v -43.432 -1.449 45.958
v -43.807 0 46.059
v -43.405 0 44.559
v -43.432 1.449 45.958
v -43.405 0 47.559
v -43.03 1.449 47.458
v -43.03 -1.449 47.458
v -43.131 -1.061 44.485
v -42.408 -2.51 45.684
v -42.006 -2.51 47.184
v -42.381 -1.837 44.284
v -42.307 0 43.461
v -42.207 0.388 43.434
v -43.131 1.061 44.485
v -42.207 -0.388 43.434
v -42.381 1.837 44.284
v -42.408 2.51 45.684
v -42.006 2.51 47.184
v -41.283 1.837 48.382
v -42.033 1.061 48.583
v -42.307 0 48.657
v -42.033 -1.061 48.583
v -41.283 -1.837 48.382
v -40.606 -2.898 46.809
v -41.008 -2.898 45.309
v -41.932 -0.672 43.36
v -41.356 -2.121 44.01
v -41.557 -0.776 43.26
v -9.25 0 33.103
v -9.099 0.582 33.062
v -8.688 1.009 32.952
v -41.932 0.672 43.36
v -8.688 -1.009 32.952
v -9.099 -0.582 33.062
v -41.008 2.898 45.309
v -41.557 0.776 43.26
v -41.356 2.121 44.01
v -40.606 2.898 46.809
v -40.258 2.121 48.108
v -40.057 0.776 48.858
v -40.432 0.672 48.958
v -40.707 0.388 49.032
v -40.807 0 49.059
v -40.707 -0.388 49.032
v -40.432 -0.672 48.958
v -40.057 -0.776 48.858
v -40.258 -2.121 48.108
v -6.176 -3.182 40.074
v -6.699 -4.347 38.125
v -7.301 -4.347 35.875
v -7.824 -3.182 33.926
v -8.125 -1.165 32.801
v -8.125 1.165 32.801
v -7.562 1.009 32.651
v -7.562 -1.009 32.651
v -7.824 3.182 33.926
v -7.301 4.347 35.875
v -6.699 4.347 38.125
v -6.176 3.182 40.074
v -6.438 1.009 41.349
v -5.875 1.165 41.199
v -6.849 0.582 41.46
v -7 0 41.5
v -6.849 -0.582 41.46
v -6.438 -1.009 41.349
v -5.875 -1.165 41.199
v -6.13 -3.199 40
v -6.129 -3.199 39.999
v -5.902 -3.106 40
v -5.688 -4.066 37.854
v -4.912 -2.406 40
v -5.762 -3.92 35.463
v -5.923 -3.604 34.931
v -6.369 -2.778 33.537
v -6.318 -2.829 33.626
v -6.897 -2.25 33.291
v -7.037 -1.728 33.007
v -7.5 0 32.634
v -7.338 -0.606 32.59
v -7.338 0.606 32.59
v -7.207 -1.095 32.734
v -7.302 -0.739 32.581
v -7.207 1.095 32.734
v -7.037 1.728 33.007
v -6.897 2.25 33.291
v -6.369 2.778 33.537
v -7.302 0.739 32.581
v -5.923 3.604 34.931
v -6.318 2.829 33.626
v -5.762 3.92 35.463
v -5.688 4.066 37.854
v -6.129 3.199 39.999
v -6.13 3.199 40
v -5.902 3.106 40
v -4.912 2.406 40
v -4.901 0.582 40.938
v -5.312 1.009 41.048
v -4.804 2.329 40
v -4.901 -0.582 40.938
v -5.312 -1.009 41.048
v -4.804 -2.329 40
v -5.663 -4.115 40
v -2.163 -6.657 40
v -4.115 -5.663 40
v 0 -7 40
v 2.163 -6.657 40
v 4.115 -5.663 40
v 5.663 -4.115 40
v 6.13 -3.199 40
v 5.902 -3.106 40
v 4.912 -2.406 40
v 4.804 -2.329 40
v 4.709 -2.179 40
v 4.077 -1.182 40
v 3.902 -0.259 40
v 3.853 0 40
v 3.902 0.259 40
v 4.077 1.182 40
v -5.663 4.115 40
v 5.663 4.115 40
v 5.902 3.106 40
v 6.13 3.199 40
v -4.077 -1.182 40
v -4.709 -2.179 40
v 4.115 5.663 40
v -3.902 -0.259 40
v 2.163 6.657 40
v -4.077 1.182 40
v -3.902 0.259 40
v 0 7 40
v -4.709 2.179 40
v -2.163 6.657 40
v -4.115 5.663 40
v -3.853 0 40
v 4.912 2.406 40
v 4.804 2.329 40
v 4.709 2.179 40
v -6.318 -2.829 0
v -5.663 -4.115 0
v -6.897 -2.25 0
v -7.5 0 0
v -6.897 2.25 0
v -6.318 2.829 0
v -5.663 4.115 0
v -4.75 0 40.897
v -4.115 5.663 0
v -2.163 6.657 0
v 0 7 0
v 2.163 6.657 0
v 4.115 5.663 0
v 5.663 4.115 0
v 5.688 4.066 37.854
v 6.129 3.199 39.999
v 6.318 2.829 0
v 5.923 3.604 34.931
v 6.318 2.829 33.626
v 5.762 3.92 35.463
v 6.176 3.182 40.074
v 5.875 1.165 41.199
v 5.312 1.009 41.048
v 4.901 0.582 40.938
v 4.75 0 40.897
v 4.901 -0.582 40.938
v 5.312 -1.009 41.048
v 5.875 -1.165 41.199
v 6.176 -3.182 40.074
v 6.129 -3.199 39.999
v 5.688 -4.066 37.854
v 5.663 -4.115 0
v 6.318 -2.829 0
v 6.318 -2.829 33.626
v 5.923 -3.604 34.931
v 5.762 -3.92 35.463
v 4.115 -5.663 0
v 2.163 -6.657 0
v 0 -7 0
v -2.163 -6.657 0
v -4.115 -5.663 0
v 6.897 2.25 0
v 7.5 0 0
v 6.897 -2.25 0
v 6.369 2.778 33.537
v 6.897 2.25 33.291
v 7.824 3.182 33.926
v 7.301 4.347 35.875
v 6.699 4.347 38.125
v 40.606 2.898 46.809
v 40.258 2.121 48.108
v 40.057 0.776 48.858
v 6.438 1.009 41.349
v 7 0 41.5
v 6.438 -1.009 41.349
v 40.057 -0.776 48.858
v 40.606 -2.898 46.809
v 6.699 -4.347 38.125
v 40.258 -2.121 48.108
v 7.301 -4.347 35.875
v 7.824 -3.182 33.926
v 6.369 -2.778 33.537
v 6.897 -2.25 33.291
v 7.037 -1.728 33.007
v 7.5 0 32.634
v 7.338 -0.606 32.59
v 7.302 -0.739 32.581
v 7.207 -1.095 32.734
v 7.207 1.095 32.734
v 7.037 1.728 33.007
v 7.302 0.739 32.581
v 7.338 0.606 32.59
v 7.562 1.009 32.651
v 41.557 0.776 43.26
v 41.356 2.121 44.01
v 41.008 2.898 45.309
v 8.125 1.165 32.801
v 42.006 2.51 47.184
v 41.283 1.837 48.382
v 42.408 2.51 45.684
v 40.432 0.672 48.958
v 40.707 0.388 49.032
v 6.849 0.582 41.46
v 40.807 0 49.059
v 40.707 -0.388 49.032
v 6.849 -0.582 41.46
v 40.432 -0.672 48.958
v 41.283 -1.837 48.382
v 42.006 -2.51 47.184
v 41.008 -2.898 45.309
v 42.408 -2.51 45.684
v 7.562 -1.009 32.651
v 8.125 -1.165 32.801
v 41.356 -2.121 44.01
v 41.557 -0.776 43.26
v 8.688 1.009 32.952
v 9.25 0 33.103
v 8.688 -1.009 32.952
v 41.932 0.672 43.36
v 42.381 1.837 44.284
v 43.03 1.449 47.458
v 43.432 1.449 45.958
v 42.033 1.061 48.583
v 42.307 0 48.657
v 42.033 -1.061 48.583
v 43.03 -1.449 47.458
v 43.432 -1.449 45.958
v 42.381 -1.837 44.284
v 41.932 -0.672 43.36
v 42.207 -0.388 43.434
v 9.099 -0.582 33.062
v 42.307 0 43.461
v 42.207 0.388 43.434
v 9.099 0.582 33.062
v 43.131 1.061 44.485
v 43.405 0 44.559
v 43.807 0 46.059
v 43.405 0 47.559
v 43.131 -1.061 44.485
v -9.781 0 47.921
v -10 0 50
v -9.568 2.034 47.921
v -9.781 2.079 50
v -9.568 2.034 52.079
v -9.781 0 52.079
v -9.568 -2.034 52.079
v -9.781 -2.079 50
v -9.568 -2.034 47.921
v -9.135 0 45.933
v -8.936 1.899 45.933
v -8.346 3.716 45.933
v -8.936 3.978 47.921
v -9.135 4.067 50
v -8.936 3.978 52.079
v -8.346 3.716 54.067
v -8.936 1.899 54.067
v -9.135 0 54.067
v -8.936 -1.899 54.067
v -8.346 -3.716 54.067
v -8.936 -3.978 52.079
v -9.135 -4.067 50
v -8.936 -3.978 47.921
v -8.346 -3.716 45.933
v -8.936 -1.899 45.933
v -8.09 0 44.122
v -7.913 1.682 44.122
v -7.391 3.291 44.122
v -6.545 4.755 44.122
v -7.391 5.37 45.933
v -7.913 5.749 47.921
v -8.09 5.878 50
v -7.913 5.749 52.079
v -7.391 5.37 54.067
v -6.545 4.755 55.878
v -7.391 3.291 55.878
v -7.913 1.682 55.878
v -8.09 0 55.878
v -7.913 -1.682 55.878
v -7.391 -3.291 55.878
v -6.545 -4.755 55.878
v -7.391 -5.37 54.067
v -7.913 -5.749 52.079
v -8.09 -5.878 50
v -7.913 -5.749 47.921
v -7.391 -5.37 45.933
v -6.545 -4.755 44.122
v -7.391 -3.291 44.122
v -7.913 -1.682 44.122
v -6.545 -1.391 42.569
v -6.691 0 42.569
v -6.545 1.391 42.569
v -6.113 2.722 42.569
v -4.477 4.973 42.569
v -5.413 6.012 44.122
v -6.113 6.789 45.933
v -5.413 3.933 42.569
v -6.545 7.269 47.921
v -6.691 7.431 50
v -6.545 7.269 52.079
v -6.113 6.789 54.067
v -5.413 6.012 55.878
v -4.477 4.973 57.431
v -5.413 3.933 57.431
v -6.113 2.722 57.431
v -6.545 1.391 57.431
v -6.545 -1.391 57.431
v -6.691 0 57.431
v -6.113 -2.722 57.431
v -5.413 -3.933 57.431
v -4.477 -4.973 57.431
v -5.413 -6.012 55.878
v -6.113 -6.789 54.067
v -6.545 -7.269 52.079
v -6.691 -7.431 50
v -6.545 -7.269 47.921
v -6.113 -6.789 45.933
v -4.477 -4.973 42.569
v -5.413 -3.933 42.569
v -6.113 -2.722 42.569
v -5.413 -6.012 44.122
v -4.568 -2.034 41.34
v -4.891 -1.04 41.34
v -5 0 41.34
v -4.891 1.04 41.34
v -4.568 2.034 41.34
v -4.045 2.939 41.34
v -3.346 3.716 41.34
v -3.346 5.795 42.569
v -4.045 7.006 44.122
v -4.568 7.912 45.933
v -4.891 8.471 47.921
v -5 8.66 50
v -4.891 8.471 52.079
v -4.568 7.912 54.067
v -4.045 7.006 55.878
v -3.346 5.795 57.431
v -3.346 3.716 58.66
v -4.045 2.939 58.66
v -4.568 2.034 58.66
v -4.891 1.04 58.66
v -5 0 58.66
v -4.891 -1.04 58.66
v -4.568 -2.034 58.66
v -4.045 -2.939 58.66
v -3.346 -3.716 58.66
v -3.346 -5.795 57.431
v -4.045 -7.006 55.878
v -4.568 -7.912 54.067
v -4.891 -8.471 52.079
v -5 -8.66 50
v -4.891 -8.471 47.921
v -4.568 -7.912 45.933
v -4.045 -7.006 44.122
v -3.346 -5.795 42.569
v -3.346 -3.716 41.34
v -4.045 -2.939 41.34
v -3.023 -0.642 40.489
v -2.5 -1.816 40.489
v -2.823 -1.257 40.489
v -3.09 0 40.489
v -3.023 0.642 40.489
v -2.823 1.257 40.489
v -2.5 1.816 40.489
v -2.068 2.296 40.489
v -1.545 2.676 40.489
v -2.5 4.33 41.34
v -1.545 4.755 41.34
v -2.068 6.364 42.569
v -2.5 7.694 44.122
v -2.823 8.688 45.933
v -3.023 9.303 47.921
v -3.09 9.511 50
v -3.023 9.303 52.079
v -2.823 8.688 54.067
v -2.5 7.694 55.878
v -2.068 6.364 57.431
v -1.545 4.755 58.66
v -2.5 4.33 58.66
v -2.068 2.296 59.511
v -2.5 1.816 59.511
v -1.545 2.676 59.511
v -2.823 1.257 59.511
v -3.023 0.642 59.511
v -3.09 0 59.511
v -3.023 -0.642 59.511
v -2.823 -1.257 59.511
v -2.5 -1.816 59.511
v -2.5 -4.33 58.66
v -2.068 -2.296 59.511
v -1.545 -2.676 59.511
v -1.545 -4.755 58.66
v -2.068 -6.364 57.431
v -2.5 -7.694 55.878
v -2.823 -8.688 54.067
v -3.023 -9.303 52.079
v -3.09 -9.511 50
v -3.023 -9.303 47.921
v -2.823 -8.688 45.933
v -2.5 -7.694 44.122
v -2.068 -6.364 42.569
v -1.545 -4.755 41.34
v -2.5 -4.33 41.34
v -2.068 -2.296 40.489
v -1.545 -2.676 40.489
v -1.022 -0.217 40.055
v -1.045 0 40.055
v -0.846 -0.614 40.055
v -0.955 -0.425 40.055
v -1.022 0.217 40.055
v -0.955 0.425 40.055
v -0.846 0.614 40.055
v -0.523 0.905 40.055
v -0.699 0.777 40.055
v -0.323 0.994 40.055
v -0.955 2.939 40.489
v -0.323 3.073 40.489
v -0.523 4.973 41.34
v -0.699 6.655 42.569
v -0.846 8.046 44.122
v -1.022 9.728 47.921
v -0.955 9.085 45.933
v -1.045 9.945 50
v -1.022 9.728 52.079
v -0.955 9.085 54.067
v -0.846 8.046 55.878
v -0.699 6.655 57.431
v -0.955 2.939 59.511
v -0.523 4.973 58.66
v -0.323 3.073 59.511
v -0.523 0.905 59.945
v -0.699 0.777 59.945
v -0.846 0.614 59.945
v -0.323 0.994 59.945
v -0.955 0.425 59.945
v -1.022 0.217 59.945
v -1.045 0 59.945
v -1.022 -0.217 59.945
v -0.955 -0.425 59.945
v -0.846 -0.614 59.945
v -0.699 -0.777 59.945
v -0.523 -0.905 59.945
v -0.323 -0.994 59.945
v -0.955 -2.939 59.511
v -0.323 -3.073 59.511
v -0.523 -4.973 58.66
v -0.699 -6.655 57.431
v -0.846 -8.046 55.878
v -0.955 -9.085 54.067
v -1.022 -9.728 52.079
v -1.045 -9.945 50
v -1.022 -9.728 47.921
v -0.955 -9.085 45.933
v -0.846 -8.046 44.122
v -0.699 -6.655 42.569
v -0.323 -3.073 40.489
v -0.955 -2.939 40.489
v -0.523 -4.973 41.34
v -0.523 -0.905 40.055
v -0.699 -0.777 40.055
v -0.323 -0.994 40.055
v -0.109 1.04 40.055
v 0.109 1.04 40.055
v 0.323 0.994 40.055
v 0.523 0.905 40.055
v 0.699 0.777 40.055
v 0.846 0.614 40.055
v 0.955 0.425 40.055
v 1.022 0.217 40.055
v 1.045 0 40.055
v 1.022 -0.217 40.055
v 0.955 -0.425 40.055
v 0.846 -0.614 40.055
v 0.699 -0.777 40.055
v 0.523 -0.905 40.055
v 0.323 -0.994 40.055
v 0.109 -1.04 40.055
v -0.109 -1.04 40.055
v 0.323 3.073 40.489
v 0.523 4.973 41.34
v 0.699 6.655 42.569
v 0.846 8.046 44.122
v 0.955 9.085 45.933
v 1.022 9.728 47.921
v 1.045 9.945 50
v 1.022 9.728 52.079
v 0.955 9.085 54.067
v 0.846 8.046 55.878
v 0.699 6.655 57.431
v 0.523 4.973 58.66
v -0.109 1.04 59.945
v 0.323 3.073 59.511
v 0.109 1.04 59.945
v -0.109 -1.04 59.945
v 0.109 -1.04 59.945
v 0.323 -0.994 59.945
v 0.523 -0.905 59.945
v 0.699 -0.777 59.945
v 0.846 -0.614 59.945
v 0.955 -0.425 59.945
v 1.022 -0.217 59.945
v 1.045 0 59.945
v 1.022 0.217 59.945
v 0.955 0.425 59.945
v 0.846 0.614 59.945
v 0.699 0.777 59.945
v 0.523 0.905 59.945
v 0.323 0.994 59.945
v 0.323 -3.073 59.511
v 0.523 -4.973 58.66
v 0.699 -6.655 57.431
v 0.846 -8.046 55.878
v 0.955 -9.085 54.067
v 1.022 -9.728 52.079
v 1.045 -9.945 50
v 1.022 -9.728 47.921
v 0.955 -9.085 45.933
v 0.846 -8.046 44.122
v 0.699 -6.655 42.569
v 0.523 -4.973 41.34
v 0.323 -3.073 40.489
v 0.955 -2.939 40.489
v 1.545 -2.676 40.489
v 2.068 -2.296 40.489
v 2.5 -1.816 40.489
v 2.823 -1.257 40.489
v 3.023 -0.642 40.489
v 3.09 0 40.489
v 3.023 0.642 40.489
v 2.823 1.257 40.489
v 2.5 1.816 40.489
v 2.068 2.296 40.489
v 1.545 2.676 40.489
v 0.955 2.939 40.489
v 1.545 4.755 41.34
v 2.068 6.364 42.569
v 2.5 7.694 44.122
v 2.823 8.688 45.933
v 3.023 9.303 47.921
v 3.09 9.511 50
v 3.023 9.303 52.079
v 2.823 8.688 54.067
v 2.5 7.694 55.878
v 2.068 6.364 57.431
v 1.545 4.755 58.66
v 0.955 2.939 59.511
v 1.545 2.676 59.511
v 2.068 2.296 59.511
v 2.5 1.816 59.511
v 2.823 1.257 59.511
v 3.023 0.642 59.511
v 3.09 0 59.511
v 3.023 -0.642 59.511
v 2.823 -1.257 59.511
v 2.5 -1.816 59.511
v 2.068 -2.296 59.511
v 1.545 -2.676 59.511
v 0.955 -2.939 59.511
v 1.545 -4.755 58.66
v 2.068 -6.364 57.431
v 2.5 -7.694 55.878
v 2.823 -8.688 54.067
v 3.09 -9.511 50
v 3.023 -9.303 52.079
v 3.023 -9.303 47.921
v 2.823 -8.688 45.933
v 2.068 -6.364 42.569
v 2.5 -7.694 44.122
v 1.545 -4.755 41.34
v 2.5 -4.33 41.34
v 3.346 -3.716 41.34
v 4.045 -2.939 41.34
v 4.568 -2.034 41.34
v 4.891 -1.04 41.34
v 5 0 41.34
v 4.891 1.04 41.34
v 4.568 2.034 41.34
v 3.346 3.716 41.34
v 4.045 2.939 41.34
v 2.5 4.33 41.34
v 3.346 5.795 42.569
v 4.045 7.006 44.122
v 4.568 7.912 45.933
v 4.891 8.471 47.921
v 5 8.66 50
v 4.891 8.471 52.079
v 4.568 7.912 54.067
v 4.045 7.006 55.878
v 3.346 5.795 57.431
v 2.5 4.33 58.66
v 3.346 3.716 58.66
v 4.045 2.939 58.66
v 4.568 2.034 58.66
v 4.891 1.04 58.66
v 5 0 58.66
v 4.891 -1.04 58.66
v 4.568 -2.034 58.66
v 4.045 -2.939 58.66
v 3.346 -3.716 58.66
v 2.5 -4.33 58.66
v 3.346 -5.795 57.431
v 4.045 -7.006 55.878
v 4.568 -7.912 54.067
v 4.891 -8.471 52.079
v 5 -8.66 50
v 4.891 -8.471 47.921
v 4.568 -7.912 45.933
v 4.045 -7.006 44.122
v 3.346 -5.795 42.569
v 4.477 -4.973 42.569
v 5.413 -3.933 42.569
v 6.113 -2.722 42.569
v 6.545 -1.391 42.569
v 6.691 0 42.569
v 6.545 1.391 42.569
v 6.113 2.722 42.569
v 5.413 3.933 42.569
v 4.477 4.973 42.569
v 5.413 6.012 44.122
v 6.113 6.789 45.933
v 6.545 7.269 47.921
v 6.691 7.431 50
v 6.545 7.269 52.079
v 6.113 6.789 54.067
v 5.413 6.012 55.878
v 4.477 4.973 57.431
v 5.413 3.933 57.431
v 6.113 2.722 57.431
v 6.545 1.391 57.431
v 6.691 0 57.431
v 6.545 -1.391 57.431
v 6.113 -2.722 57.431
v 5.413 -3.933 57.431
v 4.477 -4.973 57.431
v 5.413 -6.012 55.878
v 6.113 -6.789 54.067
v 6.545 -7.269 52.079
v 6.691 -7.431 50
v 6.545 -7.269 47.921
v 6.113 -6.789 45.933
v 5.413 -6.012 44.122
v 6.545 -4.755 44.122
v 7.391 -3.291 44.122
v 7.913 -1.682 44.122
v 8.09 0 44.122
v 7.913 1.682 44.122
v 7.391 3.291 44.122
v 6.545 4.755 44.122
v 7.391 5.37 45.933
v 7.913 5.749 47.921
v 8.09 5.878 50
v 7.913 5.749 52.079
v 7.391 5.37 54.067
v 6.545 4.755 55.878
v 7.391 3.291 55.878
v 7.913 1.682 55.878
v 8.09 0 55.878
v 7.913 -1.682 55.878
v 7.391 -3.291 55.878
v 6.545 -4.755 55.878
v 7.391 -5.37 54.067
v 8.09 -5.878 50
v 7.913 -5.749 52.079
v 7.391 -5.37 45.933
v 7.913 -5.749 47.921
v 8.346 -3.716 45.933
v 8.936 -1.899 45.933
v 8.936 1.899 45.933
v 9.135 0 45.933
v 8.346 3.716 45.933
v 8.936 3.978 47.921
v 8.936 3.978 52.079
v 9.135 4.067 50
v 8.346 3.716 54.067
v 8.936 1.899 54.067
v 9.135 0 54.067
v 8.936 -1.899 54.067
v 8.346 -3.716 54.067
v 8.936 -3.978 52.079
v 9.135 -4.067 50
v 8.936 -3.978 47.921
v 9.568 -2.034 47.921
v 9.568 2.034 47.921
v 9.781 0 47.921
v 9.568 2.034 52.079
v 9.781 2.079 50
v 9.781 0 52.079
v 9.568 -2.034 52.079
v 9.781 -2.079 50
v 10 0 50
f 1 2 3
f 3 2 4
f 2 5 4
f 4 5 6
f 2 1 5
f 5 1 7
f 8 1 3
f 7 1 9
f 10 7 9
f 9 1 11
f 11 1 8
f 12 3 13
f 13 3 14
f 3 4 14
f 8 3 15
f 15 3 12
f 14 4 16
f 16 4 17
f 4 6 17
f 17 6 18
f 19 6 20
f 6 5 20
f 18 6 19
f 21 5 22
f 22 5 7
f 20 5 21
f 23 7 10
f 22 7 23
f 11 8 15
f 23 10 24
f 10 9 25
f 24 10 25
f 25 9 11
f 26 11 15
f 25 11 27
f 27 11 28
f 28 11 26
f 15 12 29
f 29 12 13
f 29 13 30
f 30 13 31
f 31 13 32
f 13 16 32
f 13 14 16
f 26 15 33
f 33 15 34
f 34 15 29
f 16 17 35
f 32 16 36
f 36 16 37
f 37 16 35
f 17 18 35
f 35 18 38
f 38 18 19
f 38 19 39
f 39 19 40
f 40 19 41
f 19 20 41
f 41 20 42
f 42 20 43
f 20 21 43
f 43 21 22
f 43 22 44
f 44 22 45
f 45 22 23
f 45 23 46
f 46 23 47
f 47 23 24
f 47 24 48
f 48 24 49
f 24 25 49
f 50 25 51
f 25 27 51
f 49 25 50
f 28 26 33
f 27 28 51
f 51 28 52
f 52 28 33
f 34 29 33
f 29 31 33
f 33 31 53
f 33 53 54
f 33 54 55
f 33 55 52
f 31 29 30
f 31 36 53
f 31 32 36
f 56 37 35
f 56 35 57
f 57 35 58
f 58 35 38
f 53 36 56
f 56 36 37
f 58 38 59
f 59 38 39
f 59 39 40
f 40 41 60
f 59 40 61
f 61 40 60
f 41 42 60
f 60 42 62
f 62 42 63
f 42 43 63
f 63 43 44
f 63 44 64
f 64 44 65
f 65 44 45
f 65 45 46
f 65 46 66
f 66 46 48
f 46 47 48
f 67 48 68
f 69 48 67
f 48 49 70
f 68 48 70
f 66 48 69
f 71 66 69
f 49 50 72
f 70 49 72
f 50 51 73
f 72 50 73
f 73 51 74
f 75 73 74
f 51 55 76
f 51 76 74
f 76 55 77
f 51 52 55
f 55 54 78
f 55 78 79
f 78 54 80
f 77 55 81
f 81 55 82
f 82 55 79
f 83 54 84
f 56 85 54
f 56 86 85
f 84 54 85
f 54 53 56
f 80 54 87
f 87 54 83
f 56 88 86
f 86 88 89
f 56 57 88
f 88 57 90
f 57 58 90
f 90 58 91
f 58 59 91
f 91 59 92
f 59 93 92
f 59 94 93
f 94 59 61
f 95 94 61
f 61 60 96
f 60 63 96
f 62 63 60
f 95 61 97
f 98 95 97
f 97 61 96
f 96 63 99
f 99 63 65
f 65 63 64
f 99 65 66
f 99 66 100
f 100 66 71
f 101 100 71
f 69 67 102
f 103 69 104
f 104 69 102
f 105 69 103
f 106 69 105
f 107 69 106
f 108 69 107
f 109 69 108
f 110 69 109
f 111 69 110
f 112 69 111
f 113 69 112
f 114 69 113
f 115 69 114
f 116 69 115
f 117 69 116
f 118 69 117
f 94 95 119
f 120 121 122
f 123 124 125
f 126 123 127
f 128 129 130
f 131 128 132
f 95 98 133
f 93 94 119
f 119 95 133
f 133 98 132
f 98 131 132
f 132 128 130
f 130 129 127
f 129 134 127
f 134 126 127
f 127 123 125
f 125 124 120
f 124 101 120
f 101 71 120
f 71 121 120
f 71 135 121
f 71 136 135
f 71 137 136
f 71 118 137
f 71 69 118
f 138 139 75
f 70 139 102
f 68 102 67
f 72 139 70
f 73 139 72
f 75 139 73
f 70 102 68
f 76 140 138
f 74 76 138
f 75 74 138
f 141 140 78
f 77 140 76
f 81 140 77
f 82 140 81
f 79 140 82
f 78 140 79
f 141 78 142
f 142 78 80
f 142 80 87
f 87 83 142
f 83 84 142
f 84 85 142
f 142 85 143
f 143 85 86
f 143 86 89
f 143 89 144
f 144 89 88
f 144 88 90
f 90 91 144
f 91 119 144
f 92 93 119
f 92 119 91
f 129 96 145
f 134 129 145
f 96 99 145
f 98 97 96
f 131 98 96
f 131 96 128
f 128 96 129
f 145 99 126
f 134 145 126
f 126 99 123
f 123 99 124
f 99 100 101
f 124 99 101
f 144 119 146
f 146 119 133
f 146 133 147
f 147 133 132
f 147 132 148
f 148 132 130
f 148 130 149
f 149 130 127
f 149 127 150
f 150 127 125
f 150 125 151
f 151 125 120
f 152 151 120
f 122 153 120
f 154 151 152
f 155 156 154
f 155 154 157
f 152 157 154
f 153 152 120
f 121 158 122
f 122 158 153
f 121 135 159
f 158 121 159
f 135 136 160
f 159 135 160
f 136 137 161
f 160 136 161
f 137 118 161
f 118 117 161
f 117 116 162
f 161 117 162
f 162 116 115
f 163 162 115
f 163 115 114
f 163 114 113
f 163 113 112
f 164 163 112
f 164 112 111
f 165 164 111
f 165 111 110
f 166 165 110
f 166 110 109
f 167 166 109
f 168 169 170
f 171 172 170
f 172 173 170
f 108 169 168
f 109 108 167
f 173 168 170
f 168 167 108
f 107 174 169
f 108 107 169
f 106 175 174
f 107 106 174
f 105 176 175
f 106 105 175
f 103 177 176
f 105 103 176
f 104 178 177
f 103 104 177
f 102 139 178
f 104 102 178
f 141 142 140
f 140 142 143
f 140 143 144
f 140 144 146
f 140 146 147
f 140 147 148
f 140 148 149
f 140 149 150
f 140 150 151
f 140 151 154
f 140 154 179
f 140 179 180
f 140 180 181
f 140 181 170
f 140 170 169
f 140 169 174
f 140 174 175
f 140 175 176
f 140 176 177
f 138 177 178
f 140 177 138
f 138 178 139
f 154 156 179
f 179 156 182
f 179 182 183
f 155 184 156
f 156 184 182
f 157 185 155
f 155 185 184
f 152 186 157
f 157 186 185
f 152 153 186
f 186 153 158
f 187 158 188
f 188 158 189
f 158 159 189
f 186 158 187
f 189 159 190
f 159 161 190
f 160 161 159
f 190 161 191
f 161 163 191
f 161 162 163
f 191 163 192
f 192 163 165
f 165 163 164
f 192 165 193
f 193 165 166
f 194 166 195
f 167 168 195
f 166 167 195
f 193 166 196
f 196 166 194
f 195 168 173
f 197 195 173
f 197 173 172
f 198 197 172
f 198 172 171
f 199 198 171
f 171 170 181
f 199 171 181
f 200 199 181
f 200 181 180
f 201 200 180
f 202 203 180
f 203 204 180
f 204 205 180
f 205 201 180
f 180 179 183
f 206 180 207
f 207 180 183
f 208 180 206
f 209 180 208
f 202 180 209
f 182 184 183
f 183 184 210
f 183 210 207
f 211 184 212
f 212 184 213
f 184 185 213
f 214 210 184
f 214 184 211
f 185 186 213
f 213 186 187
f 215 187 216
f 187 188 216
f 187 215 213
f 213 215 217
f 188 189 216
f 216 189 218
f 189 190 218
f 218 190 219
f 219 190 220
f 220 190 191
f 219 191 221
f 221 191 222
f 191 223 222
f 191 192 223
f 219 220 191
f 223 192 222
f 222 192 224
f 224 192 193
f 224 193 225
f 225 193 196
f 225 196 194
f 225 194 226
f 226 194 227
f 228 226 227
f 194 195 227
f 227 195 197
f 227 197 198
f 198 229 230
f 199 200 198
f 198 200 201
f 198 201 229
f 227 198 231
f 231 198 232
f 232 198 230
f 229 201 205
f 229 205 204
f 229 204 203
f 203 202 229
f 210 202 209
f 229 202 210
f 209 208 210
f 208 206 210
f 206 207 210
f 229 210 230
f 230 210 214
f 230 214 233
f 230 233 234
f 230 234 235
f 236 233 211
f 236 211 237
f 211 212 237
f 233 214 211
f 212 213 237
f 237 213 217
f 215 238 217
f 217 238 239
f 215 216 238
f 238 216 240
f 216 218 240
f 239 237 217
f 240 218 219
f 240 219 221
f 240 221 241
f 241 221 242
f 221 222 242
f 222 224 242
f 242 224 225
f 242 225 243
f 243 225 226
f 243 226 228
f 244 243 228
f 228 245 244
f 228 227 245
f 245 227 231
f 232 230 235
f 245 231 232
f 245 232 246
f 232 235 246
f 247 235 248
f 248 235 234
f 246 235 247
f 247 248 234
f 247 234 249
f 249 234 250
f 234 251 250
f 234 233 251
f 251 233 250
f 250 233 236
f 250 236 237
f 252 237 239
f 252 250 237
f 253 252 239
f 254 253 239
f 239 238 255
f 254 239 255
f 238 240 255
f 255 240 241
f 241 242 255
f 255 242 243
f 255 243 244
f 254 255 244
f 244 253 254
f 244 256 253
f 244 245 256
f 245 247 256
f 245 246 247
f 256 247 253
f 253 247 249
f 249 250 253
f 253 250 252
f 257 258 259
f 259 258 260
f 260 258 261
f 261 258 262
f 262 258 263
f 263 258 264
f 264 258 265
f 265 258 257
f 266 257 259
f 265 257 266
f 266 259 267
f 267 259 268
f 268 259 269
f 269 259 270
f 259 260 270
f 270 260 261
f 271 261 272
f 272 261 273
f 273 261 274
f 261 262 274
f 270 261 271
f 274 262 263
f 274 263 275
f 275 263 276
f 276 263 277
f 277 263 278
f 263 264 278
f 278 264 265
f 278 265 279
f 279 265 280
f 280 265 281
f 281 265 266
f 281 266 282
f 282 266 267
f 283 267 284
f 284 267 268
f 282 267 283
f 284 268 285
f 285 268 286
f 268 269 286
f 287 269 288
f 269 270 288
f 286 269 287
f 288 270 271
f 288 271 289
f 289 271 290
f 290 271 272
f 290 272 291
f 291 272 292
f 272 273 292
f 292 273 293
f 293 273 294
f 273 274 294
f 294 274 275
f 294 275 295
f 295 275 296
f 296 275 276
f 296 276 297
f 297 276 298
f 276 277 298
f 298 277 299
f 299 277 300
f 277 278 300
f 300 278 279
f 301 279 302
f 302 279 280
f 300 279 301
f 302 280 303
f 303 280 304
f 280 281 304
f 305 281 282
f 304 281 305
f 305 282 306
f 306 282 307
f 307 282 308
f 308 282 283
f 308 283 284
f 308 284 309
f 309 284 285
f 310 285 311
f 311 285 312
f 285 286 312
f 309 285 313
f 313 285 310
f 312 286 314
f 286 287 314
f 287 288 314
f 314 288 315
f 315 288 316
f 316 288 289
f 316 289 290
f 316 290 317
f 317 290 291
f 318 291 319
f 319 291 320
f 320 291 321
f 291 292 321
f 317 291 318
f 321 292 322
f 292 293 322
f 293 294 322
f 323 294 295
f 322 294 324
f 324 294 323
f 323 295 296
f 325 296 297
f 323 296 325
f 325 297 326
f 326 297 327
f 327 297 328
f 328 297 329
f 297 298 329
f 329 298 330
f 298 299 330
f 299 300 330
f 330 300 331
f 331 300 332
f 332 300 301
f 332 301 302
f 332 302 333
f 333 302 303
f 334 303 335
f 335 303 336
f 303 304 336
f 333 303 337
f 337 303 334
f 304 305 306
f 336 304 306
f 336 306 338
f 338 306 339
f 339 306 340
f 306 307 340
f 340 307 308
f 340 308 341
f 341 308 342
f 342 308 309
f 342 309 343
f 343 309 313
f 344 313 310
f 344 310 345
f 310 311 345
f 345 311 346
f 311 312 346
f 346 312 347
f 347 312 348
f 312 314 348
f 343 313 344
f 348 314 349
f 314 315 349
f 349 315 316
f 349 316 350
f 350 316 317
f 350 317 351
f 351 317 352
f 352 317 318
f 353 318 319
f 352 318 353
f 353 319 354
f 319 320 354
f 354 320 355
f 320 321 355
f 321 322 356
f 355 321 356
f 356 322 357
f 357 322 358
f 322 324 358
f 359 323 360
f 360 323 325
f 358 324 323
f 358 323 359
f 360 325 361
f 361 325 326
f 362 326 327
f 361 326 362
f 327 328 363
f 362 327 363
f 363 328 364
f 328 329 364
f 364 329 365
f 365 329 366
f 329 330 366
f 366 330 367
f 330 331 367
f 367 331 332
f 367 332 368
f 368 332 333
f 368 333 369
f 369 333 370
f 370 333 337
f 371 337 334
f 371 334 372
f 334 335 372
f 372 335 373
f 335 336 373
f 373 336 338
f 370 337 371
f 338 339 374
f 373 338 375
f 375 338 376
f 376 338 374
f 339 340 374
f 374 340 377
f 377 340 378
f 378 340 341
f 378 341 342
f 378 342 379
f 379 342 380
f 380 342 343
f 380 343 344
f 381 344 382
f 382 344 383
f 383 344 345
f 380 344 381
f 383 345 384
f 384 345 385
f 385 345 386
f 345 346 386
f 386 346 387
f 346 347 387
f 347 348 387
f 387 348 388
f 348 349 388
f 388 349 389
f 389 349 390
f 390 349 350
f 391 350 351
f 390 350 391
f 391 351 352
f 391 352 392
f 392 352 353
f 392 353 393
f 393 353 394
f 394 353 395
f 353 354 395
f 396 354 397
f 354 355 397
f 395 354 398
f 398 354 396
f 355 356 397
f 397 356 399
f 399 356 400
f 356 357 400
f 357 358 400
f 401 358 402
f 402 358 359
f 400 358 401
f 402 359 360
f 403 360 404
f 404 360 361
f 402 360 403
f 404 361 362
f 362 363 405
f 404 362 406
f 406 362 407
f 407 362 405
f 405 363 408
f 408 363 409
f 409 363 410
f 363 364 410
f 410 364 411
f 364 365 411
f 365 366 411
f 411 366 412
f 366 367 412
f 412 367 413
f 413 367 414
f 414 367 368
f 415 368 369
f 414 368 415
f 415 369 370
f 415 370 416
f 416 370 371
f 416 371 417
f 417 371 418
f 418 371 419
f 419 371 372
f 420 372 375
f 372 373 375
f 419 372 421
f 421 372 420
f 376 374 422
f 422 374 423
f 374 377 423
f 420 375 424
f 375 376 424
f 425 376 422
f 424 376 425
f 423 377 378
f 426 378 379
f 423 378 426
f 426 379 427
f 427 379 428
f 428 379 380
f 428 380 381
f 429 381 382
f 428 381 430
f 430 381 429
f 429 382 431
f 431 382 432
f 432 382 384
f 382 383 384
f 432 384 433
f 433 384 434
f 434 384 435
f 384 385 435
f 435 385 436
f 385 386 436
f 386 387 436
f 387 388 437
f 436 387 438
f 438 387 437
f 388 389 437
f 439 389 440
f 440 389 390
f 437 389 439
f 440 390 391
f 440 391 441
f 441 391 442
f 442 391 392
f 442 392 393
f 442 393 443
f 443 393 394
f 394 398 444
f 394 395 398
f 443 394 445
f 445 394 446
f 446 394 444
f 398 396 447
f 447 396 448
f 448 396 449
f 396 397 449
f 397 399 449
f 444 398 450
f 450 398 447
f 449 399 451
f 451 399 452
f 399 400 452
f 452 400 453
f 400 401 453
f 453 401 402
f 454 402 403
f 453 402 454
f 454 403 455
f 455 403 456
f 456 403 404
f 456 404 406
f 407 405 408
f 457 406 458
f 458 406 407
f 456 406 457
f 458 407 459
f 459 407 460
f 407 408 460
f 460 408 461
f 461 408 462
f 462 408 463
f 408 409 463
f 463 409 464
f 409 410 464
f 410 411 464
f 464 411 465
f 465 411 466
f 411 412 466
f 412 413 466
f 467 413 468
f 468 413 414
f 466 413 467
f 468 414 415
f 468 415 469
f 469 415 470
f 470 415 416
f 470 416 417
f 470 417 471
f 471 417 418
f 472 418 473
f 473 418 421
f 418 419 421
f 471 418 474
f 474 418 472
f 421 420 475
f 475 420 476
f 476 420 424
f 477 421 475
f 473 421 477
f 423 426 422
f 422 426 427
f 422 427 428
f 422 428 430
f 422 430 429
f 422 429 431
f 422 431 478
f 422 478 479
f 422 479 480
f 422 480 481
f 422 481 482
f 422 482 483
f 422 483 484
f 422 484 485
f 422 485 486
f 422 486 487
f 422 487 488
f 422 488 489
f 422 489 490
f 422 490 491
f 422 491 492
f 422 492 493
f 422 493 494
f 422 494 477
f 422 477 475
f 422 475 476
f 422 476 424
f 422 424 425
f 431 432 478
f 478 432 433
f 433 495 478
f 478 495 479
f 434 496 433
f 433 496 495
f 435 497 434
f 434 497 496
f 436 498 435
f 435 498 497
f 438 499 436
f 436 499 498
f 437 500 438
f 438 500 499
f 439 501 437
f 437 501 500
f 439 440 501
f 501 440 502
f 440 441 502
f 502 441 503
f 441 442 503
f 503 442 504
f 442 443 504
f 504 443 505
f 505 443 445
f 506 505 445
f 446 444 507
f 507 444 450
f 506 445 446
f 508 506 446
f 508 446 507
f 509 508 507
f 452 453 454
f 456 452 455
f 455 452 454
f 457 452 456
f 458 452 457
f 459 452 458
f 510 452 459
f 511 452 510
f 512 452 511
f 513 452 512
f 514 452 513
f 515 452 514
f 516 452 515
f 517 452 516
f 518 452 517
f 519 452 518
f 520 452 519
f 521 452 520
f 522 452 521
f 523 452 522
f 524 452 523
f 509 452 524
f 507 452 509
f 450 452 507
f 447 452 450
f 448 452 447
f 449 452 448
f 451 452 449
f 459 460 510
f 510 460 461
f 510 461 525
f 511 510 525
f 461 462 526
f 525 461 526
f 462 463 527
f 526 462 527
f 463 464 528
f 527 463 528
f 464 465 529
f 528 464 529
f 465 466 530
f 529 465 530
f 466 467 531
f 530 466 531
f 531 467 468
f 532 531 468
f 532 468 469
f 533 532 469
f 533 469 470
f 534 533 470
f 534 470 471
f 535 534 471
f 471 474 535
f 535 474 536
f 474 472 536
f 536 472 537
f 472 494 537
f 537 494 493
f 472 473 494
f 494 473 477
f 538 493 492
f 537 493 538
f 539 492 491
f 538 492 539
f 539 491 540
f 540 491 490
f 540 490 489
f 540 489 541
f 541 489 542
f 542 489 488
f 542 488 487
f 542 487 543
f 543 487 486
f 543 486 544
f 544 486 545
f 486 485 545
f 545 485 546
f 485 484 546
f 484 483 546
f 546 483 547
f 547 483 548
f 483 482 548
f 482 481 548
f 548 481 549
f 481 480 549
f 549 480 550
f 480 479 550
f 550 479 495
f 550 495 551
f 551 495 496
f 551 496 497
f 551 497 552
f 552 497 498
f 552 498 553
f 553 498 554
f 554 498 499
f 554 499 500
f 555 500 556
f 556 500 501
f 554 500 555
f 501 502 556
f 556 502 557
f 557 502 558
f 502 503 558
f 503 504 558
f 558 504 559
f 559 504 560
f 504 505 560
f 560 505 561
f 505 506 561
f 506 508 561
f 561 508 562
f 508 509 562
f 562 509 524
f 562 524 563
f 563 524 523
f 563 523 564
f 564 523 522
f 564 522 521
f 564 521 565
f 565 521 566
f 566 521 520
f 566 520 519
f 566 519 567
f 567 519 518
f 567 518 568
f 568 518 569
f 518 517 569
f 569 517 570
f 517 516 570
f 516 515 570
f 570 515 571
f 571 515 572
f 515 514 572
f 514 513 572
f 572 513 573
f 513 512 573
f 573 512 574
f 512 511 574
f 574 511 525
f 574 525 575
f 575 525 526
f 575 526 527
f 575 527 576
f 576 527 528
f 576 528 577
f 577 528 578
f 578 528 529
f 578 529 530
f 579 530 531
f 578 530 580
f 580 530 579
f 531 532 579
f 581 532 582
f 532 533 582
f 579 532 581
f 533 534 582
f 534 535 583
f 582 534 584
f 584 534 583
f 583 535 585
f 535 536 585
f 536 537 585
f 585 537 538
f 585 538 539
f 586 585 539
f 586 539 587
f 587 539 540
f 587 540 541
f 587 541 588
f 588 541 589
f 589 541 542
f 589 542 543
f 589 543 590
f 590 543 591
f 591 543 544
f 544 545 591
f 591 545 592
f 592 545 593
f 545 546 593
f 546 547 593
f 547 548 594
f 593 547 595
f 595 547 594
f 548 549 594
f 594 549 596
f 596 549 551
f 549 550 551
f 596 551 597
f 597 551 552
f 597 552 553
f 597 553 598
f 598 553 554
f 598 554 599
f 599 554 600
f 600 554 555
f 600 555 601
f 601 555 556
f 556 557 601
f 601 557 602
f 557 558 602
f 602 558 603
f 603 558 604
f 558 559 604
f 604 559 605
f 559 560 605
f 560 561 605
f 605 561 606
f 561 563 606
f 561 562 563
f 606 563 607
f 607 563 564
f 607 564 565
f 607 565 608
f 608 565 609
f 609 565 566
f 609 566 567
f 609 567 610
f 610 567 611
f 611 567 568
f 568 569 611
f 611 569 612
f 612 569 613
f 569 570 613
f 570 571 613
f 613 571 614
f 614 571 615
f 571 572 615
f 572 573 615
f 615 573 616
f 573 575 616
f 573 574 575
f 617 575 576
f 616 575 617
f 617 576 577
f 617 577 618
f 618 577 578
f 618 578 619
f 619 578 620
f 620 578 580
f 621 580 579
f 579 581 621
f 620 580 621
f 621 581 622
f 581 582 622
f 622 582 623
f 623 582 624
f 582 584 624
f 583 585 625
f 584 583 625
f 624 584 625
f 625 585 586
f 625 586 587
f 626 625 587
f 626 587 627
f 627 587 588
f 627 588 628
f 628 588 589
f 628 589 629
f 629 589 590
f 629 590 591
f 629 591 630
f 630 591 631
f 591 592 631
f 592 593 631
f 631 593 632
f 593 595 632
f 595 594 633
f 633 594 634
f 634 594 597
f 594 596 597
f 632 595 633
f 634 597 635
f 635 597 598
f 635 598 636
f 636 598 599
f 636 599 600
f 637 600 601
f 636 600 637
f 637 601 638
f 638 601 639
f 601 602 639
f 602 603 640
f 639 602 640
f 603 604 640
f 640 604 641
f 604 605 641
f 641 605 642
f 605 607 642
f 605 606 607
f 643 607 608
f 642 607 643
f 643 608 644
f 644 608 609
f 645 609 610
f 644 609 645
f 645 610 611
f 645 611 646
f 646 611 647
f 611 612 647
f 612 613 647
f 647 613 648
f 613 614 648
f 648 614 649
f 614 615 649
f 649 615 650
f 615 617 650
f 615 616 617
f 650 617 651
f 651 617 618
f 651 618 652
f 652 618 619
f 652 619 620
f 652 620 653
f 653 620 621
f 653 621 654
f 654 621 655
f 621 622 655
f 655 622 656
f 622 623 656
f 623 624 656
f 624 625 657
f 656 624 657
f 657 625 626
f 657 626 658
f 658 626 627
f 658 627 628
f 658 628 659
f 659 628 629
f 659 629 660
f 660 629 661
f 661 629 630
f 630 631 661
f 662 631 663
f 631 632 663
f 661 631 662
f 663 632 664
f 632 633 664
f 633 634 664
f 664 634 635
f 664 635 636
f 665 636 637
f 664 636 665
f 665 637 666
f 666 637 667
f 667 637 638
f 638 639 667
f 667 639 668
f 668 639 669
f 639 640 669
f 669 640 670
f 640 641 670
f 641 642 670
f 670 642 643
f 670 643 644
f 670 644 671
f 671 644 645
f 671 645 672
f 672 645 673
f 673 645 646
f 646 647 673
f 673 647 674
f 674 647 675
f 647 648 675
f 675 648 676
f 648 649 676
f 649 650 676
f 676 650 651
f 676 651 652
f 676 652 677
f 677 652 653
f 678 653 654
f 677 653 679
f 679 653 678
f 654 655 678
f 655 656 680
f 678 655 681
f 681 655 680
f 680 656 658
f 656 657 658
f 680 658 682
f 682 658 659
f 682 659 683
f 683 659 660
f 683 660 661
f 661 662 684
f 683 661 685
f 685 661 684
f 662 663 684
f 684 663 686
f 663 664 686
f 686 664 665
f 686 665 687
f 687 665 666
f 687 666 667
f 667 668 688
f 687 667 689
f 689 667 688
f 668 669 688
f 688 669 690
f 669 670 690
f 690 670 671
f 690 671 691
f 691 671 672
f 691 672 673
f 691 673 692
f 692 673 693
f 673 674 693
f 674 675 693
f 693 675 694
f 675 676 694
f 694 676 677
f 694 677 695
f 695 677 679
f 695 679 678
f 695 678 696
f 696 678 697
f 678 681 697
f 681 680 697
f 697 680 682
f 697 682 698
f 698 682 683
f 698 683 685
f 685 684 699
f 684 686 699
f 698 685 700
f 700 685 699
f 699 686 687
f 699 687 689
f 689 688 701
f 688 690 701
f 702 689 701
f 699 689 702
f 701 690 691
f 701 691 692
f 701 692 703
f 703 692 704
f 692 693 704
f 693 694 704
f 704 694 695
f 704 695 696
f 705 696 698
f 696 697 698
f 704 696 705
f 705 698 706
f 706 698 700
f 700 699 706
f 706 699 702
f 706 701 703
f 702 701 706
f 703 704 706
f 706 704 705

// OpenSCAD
// --- PARAMETERS ---
torso_height = 40;
head_radius = 10;
limb_radius = 3;
limb_length = 35;

// --- ASSEMBLY ---
// The final model is assembled using the union() function
union()
{
    // 1. Torso (Main Body)
    color([0.8, 0.6, 0.4]) // Skin tone color for visualization
    {
        translate([0, 0, 0])
        {
            cylinder(h = torso_height, r = head_radius * 0.7, $fn = 20);
        }
    }

    // 2. Head (Sphere on top)
    color([0.8, 0.6, 0.4])
    {
        translate([0, 0, torso_height + head_radius])
        {
            sphere(r = head_radius, $fn = 30);
        }
    }

    // 3. Right Arm
    color([0.5, 0.5, 0.5]) // Gray for clothes visualization
    {
        // Start position for the arm relative to the top of the torso
        translate([head_radius * 0.7, 0, torso_height - limb_radius])
        {
            // Rotate the arm slightly down (e.g., -15 degrees around the Y-axis)
            rotate([0, -15, 0])
            {
                // Use hull() to create a smooth connection from the shoulder sphere to the wrist sphere
                hull()
                {
                    // Shoulder joint (a sphere)
                    sphere(r = limb_radius * 1.5, $fn = 12);
                    
                    // Wrist position (a sphere)
                    translate([limb_length, 0, 0])
                    {
                        sphere(r = limb_radius, $fn = 12);
                    }
                }
            }
        }
    }

    // 4. Left Arm (Mirror of the Right Arm, moved to the negative X side)
    color([0.5, 0.5, 0.5])
    {
        translate([-head_radius * 0.7, 0, torso_height - limb_radius])
        {
            rotate([0, 15, 0])
            {
                hull()
                {
                    sphere(r = limb_radius * 1.5, $fn = 12);
                    translate([-limb_length, 0, 0]) // Note the negative X translation
                    {
                        sphere(r = limb_radius, $fn = 12);
                    }
                }
            }
        }
    }
    
    // 5. Legs (Simplified Cylinders)
    color([0.3, 0.3, 0.7]) // Blue for pants visualization
    {
        // Right Leg
        translate([limb_radius, 0, 0])
        {
            cylinder(h = limb_length, r = limb_radius * 1.5, $fn = 12);
        }

        // Left Leg
        translate([-limb_radius, 0, 0])
        {
            cylinder(h = limb_length, r = limb_radius * 1.5, $fn = 12);
        }
    }
}
